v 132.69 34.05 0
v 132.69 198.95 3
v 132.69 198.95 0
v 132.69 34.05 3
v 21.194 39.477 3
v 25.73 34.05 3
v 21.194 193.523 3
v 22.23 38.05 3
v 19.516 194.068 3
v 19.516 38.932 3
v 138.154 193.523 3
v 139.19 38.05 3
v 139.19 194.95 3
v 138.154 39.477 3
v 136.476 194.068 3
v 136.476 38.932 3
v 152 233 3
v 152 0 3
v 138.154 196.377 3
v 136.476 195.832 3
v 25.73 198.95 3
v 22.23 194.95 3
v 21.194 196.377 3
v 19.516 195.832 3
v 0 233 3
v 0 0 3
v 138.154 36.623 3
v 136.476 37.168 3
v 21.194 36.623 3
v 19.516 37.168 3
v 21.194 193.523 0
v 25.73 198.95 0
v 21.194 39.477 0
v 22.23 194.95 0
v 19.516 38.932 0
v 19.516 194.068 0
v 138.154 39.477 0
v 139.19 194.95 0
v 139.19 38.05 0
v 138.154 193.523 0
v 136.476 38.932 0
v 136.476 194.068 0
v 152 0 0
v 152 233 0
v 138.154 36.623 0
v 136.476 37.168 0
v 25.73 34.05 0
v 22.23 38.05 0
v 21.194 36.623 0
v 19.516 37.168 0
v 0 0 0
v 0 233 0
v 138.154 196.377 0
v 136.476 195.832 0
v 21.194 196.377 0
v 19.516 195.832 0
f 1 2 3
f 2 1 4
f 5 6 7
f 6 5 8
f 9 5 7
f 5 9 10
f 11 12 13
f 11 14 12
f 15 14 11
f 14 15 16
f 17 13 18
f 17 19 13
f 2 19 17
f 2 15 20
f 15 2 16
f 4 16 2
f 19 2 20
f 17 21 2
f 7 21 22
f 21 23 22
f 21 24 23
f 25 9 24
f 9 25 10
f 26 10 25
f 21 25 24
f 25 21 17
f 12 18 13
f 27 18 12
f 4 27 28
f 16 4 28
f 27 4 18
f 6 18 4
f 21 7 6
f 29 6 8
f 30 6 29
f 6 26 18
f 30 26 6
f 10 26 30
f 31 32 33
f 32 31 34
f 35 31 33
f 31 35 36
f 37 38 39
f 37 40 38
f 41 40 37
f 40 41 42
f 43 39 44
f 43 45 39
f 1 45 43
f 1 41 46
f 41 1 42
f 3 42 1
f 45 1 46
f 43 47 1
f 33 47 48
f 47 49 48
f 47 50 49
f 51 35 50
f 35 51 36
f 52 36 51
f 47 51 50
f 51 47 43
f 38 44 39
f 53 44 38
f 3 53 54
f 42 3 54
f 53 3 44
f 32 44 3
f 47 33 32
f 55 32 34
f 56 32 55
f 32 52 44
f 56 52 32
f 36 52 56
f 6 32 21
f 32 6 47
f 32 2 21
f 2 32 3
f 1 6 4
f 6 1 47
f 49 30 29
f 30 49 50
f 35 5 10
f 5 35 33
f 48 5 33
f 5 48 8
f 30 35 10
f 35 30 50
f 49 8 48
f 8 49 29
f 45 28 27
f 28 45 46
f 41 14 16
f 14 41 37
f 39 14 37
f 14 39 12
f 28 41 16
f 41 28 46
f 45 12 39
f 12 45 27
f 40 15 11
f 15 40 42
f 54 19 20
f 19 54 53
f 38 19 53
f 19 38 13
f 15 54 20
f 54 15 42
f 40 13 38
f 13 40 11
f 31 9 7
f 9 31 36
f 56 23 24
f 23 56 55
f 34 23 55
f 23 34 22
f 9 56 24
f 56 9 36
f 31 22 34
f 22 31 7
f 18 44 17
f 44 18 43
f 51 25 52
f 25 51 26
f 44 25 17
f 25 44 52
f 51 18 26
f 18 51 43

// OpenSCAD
module Display_bezel(){
    
    WIDTH = 150;
    DEPTH = 243;//233;//210;
    HEIGHT = 30;
    OUTER_WALL = 5;
    HINGE_BOLT_SHAFT_DIAMETER = 5;
    
    LCD_WIDTH = 106.96;
    LCD_DEPTH = 164.9;
    LCD_MOUNT_WIDTH = 124.27;
    
    // LCD mounting tab is 8mm wide, hole is 5mm center above/below screen itself.
    
    difference(){
        //cube([WIDTH+2,DEPTH-(OUTER_WALL*2),HEIGHT+OUTER_WALL]);
        cube([WIDTH+2,DEPTH-(OUTER_WALL*2),3]);
        
        // LCD hole
        translate([WIDTH-LCD_MOUNT_WIDTH,((DEPTH-(OUTER_WALL*2))/2)-(LCD_DEPTH/2),0]){
            cube([LCD_WIDTH,LCD_DEPTH,3]);
            
            // Mounting holes
            translate([-5,4,0]){
                cylinder(r=3/2,h=3);
            }
            
            translate([LCD_WIDTH+5,4,0]){
                cylinder(r=3/2,h=3);
            }
            
            translate([LCD_WIDTH+5,LCD_DEPTH-4,0]){
                cylinder(r=3/2,h=3);
            }
            
            translate([-5,LCD_DEPTH-4,0]){
                cylinder(r=3/2,h=3);
            }
        }               
    }
}

Display_bezel();
